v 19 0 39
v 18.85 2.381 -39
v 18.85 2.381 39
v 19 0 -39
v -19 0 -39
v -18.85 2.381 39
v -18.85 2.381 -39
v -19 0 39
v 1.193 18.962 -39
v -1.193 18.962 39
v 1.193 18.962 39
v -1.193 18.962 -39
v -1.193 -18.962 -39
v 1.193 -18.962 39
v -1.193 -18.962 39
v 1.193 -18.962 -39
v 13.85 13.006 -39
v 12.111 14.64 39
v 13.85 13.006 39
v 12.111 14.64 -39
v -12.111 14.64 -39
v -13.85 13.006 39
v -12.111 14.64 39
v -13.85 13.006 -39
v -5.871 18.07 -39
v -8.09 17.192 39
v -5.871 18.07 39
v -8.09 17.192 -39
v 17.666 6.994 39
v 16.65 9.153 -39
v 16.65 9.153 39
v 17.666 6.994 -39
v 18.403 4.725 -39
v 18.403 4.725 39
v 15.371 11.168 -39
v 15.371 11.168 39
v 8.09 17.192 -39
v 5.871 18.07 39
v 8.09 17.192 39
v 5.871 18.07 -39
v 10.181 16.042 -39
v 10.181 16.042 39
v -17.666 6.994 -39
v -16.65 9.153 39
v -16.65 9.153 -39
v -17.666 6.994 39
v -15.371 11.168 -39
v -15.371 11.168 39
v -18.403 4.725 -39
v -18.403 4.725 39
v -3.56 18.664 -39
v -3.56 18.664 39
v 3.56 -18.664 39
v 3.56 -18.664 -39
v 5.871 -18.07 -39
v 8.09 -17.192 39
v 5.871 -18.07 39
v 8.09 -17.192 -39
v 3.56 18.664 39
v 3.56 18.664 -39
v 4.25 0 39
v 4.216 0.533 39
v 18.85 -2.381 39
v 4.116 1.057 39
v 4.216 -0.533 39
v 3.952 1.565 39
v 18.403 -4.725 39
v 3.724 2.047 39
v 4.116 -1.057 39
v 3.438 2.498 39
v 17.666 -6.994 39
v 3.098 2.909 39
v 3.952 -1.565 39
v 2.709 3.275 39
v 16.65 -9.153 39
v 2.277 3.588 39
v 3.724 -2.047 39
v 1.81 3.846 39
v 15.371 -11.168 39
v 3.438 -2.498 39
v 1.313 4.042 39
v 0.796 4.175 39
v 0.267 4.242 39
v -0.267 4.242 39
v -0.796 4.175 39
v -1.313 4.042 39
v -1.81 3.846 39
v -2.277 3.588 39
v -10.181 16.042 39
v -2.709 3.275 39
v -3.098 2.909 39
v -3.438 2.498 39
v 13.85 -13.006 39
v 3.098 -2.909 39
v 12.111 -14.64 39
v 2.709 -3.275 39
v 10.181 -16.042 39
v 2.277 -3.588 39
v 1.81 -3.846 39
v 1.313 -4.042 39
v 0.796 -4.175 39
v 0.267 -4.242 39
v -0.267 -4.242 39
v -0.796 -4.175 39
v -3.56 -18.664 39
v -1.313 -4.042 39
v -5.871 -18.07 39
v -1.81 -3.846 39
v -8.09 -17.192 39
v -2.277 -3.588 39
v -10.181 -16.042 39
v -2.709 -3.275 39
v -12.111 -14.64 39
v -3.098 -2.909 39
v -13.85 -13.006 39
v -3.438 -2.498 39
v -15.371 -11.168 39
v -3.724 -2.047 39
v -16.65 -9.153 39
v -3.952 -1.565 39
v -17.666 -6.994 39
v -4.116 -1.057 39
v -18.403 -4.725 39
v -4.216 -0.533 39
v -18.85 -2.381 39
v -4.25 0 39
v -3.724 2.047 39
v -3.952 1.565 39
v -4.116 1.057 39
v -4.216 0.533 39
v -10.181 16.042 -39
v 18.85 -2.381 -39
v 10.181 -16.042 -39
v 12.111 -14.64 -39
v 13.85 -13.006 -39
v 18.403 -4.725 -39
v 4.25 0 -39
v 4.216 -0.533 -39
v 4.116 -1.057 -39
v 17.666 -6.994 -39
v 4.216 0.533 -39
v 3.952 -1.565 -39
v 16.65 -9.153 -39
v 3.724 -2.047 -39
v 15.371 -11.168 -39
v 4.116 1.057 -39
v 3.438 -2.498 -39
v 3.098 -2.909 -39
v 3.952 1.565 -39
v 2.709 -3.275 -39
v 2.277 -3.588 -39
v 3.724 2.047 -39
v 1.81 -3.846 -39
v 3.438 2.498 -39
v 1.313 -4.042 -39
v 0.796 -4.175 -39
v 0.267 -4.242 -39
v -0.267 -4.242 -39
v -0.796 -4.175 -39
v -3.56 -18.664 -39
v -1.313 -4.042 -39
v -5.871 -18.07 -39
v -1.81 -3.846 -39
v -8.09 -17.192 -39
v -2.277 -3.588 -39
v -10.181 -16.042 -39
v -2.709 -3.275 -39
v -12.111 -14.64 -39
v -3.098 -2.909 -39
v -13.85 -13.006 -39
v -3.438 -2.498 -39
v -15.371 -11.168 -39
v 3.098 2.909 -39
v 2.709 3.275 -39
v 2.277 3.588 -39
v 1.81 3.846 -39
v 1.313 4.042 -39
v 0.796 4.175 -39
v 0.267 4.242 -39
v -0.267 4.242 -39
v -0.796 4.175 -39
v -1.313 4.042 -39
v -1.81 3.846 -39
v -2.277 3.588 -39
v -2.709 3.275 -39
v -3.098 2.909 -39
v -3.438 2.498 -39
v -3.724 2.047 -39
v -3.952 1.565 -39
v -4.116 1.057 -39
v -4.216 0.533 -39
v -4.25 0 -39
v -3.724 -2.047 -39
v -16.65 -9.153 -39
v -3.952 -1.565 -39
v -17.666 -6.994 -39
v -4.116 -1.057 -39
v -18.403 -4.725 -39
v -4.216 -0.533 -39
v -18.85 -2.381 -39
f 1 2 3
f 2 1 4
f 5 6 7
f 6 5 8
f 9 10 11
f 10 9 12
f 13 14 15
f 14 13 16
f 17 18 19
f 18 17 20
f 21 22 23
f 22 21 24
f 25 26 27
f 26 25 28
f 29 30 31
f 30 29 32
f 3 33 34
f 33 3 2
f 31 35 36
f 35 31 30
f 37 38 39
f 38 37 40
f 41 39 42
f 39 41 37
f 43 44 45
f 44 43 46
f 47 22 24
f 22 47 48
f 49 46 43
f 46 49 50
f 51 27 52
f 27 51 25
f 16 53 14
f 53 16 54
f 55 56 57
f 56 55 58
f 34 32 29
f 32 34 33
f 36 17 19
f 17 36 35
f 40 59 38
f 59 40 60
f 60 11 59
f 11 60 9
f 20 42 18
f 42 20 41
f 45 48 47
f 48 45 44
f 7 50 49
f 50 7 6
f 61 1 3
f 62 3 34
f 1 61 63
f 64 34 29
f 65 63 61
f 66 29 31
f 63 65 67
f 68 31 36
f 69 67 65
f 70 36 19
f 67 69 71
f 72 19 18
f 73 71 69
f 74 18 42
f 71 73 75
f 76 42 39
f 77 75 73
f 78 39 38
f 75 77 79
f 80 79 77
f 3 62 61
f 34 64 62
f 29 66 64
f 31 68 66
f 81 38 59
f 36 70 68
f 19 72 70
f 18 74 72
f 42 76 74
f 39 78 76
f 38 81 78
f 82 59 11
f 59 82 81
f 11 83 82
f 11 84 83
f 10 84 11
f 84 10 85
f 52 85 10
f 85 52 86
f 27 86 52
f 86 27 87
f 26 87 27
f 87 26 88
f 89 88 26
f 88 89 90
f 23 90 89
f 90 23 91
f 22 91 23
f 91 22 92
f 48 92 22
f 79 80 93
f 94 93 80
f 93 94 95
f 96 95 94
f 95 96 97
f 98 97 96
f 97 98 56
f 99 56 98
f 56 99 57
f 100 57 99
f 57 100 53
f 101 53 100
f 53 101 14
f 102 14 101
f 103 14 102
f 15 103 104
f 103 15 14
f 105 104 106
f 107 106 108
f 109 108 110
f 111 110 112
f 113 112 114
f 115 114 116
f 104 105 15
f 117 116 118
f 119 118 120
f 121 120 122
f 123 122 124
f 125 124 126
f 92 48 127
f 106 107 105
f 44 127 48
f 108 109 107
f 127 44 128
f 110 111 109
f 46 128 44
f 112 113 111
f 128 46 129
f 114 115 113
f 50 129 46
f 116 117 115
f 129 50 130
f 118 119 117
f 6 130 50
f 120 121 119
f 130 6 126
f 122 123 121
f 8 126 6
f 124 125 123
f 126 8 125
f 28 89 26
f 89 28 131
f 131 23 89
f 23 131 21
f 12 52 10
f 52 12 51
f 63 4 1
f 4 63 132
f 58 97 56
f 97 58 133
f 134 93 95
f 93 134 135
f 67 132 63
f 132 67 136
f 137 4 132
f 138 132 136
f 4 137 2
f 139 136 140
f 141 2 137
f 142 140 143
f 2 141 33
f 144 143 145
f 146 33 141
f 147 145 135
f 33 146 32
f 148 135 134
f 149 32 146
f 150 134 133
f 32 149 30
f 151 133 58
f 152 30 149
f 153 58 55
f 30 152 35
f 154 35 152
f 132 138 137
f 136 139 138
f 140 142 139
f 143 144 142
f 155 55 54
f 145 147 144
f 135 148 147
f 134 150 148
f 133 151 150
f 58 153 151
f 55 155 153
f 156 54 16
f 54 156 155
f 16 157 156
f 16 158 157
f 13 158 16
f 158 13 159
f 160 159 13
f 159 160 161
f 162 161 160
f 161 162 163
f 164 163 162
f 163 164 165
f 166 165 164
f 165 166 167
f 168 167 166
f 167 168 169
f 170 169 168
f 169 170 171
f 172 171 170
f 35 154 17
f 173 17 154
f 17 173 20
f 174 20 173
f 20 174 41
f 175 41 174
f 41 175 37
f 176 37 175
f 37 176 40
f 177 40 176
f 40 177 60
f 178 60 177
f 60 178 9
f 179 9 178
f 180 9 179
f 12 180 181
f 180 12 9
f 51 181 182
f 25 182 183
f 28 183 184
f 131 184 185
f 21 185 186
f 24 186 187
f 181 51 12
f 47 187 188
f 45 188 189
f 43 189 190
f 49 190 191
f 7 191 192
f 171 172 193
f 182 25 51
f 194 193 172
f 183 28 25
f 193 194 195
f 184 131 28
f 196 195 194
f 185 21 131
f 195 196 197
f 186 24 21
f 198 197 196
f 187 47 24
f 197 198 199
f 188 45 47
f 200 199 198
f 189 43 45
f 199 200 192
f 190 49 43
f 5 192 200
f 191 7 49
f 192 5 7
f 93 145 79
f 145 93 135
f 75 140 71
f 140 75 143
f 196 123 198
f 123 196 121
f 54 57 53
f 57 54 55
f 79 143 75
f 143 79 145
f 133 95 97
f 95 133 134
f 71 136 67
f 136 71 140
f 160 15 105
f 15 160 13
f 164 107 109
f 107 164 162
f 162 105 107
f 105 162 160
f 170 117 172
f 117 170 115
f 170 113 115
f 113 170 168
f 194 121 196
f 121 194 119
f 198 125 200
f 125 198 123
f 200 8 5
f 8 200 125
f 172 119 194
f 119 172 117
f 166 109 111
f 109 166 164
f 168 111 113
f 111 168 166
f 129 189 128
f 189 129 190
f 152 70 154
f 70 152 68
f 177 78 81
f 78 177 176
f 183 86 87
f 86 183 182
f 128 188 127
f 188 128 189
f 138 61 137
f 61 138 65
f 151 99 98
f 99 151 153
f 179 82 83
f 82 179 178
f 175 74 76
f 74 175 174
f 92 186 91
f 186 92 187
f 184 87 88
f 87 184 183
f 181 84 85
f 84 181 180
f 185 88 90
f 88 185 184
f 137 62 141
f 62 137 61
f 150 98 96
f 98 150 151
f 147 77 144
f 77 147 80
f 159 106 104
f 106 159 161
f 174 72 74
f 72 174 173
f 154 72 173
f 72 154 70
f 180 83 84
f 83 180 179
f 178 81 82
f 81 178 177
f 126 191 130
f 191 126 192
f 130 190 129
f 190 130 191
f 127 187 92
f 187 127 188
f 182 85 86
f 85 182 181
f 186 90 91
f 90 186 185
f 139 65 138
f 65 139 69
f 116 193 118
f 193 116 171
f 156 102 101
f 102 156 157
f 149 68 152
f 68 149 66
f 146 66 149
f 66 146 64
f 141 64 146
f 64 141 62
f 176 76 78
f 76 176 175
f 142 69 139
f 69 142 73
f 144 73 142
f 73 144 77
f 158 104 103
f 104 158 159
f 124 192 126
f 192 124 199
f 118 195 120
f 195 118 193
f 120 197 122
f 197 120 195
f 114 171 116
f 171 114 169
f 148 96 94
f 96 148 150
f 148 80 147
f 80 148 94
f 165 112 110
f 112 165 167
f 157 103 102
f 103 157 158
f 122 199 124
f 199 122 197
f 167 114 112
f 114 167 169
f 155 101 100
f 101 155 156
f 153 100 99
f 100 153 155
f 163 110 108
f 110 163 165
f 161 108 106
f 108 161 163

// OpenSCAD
$fn = 50;


difference() {
	union() {
		translate(v = [0, 0, -39.0000000000]) {
			cylinder(h = 78, r = 19.0000000000);
		}
	}
	union() {
		translate(v = [0, 0, -100.0000000000]) {
			cylinder(h = 200, r = 4.2500000000);
		}
	}
}
